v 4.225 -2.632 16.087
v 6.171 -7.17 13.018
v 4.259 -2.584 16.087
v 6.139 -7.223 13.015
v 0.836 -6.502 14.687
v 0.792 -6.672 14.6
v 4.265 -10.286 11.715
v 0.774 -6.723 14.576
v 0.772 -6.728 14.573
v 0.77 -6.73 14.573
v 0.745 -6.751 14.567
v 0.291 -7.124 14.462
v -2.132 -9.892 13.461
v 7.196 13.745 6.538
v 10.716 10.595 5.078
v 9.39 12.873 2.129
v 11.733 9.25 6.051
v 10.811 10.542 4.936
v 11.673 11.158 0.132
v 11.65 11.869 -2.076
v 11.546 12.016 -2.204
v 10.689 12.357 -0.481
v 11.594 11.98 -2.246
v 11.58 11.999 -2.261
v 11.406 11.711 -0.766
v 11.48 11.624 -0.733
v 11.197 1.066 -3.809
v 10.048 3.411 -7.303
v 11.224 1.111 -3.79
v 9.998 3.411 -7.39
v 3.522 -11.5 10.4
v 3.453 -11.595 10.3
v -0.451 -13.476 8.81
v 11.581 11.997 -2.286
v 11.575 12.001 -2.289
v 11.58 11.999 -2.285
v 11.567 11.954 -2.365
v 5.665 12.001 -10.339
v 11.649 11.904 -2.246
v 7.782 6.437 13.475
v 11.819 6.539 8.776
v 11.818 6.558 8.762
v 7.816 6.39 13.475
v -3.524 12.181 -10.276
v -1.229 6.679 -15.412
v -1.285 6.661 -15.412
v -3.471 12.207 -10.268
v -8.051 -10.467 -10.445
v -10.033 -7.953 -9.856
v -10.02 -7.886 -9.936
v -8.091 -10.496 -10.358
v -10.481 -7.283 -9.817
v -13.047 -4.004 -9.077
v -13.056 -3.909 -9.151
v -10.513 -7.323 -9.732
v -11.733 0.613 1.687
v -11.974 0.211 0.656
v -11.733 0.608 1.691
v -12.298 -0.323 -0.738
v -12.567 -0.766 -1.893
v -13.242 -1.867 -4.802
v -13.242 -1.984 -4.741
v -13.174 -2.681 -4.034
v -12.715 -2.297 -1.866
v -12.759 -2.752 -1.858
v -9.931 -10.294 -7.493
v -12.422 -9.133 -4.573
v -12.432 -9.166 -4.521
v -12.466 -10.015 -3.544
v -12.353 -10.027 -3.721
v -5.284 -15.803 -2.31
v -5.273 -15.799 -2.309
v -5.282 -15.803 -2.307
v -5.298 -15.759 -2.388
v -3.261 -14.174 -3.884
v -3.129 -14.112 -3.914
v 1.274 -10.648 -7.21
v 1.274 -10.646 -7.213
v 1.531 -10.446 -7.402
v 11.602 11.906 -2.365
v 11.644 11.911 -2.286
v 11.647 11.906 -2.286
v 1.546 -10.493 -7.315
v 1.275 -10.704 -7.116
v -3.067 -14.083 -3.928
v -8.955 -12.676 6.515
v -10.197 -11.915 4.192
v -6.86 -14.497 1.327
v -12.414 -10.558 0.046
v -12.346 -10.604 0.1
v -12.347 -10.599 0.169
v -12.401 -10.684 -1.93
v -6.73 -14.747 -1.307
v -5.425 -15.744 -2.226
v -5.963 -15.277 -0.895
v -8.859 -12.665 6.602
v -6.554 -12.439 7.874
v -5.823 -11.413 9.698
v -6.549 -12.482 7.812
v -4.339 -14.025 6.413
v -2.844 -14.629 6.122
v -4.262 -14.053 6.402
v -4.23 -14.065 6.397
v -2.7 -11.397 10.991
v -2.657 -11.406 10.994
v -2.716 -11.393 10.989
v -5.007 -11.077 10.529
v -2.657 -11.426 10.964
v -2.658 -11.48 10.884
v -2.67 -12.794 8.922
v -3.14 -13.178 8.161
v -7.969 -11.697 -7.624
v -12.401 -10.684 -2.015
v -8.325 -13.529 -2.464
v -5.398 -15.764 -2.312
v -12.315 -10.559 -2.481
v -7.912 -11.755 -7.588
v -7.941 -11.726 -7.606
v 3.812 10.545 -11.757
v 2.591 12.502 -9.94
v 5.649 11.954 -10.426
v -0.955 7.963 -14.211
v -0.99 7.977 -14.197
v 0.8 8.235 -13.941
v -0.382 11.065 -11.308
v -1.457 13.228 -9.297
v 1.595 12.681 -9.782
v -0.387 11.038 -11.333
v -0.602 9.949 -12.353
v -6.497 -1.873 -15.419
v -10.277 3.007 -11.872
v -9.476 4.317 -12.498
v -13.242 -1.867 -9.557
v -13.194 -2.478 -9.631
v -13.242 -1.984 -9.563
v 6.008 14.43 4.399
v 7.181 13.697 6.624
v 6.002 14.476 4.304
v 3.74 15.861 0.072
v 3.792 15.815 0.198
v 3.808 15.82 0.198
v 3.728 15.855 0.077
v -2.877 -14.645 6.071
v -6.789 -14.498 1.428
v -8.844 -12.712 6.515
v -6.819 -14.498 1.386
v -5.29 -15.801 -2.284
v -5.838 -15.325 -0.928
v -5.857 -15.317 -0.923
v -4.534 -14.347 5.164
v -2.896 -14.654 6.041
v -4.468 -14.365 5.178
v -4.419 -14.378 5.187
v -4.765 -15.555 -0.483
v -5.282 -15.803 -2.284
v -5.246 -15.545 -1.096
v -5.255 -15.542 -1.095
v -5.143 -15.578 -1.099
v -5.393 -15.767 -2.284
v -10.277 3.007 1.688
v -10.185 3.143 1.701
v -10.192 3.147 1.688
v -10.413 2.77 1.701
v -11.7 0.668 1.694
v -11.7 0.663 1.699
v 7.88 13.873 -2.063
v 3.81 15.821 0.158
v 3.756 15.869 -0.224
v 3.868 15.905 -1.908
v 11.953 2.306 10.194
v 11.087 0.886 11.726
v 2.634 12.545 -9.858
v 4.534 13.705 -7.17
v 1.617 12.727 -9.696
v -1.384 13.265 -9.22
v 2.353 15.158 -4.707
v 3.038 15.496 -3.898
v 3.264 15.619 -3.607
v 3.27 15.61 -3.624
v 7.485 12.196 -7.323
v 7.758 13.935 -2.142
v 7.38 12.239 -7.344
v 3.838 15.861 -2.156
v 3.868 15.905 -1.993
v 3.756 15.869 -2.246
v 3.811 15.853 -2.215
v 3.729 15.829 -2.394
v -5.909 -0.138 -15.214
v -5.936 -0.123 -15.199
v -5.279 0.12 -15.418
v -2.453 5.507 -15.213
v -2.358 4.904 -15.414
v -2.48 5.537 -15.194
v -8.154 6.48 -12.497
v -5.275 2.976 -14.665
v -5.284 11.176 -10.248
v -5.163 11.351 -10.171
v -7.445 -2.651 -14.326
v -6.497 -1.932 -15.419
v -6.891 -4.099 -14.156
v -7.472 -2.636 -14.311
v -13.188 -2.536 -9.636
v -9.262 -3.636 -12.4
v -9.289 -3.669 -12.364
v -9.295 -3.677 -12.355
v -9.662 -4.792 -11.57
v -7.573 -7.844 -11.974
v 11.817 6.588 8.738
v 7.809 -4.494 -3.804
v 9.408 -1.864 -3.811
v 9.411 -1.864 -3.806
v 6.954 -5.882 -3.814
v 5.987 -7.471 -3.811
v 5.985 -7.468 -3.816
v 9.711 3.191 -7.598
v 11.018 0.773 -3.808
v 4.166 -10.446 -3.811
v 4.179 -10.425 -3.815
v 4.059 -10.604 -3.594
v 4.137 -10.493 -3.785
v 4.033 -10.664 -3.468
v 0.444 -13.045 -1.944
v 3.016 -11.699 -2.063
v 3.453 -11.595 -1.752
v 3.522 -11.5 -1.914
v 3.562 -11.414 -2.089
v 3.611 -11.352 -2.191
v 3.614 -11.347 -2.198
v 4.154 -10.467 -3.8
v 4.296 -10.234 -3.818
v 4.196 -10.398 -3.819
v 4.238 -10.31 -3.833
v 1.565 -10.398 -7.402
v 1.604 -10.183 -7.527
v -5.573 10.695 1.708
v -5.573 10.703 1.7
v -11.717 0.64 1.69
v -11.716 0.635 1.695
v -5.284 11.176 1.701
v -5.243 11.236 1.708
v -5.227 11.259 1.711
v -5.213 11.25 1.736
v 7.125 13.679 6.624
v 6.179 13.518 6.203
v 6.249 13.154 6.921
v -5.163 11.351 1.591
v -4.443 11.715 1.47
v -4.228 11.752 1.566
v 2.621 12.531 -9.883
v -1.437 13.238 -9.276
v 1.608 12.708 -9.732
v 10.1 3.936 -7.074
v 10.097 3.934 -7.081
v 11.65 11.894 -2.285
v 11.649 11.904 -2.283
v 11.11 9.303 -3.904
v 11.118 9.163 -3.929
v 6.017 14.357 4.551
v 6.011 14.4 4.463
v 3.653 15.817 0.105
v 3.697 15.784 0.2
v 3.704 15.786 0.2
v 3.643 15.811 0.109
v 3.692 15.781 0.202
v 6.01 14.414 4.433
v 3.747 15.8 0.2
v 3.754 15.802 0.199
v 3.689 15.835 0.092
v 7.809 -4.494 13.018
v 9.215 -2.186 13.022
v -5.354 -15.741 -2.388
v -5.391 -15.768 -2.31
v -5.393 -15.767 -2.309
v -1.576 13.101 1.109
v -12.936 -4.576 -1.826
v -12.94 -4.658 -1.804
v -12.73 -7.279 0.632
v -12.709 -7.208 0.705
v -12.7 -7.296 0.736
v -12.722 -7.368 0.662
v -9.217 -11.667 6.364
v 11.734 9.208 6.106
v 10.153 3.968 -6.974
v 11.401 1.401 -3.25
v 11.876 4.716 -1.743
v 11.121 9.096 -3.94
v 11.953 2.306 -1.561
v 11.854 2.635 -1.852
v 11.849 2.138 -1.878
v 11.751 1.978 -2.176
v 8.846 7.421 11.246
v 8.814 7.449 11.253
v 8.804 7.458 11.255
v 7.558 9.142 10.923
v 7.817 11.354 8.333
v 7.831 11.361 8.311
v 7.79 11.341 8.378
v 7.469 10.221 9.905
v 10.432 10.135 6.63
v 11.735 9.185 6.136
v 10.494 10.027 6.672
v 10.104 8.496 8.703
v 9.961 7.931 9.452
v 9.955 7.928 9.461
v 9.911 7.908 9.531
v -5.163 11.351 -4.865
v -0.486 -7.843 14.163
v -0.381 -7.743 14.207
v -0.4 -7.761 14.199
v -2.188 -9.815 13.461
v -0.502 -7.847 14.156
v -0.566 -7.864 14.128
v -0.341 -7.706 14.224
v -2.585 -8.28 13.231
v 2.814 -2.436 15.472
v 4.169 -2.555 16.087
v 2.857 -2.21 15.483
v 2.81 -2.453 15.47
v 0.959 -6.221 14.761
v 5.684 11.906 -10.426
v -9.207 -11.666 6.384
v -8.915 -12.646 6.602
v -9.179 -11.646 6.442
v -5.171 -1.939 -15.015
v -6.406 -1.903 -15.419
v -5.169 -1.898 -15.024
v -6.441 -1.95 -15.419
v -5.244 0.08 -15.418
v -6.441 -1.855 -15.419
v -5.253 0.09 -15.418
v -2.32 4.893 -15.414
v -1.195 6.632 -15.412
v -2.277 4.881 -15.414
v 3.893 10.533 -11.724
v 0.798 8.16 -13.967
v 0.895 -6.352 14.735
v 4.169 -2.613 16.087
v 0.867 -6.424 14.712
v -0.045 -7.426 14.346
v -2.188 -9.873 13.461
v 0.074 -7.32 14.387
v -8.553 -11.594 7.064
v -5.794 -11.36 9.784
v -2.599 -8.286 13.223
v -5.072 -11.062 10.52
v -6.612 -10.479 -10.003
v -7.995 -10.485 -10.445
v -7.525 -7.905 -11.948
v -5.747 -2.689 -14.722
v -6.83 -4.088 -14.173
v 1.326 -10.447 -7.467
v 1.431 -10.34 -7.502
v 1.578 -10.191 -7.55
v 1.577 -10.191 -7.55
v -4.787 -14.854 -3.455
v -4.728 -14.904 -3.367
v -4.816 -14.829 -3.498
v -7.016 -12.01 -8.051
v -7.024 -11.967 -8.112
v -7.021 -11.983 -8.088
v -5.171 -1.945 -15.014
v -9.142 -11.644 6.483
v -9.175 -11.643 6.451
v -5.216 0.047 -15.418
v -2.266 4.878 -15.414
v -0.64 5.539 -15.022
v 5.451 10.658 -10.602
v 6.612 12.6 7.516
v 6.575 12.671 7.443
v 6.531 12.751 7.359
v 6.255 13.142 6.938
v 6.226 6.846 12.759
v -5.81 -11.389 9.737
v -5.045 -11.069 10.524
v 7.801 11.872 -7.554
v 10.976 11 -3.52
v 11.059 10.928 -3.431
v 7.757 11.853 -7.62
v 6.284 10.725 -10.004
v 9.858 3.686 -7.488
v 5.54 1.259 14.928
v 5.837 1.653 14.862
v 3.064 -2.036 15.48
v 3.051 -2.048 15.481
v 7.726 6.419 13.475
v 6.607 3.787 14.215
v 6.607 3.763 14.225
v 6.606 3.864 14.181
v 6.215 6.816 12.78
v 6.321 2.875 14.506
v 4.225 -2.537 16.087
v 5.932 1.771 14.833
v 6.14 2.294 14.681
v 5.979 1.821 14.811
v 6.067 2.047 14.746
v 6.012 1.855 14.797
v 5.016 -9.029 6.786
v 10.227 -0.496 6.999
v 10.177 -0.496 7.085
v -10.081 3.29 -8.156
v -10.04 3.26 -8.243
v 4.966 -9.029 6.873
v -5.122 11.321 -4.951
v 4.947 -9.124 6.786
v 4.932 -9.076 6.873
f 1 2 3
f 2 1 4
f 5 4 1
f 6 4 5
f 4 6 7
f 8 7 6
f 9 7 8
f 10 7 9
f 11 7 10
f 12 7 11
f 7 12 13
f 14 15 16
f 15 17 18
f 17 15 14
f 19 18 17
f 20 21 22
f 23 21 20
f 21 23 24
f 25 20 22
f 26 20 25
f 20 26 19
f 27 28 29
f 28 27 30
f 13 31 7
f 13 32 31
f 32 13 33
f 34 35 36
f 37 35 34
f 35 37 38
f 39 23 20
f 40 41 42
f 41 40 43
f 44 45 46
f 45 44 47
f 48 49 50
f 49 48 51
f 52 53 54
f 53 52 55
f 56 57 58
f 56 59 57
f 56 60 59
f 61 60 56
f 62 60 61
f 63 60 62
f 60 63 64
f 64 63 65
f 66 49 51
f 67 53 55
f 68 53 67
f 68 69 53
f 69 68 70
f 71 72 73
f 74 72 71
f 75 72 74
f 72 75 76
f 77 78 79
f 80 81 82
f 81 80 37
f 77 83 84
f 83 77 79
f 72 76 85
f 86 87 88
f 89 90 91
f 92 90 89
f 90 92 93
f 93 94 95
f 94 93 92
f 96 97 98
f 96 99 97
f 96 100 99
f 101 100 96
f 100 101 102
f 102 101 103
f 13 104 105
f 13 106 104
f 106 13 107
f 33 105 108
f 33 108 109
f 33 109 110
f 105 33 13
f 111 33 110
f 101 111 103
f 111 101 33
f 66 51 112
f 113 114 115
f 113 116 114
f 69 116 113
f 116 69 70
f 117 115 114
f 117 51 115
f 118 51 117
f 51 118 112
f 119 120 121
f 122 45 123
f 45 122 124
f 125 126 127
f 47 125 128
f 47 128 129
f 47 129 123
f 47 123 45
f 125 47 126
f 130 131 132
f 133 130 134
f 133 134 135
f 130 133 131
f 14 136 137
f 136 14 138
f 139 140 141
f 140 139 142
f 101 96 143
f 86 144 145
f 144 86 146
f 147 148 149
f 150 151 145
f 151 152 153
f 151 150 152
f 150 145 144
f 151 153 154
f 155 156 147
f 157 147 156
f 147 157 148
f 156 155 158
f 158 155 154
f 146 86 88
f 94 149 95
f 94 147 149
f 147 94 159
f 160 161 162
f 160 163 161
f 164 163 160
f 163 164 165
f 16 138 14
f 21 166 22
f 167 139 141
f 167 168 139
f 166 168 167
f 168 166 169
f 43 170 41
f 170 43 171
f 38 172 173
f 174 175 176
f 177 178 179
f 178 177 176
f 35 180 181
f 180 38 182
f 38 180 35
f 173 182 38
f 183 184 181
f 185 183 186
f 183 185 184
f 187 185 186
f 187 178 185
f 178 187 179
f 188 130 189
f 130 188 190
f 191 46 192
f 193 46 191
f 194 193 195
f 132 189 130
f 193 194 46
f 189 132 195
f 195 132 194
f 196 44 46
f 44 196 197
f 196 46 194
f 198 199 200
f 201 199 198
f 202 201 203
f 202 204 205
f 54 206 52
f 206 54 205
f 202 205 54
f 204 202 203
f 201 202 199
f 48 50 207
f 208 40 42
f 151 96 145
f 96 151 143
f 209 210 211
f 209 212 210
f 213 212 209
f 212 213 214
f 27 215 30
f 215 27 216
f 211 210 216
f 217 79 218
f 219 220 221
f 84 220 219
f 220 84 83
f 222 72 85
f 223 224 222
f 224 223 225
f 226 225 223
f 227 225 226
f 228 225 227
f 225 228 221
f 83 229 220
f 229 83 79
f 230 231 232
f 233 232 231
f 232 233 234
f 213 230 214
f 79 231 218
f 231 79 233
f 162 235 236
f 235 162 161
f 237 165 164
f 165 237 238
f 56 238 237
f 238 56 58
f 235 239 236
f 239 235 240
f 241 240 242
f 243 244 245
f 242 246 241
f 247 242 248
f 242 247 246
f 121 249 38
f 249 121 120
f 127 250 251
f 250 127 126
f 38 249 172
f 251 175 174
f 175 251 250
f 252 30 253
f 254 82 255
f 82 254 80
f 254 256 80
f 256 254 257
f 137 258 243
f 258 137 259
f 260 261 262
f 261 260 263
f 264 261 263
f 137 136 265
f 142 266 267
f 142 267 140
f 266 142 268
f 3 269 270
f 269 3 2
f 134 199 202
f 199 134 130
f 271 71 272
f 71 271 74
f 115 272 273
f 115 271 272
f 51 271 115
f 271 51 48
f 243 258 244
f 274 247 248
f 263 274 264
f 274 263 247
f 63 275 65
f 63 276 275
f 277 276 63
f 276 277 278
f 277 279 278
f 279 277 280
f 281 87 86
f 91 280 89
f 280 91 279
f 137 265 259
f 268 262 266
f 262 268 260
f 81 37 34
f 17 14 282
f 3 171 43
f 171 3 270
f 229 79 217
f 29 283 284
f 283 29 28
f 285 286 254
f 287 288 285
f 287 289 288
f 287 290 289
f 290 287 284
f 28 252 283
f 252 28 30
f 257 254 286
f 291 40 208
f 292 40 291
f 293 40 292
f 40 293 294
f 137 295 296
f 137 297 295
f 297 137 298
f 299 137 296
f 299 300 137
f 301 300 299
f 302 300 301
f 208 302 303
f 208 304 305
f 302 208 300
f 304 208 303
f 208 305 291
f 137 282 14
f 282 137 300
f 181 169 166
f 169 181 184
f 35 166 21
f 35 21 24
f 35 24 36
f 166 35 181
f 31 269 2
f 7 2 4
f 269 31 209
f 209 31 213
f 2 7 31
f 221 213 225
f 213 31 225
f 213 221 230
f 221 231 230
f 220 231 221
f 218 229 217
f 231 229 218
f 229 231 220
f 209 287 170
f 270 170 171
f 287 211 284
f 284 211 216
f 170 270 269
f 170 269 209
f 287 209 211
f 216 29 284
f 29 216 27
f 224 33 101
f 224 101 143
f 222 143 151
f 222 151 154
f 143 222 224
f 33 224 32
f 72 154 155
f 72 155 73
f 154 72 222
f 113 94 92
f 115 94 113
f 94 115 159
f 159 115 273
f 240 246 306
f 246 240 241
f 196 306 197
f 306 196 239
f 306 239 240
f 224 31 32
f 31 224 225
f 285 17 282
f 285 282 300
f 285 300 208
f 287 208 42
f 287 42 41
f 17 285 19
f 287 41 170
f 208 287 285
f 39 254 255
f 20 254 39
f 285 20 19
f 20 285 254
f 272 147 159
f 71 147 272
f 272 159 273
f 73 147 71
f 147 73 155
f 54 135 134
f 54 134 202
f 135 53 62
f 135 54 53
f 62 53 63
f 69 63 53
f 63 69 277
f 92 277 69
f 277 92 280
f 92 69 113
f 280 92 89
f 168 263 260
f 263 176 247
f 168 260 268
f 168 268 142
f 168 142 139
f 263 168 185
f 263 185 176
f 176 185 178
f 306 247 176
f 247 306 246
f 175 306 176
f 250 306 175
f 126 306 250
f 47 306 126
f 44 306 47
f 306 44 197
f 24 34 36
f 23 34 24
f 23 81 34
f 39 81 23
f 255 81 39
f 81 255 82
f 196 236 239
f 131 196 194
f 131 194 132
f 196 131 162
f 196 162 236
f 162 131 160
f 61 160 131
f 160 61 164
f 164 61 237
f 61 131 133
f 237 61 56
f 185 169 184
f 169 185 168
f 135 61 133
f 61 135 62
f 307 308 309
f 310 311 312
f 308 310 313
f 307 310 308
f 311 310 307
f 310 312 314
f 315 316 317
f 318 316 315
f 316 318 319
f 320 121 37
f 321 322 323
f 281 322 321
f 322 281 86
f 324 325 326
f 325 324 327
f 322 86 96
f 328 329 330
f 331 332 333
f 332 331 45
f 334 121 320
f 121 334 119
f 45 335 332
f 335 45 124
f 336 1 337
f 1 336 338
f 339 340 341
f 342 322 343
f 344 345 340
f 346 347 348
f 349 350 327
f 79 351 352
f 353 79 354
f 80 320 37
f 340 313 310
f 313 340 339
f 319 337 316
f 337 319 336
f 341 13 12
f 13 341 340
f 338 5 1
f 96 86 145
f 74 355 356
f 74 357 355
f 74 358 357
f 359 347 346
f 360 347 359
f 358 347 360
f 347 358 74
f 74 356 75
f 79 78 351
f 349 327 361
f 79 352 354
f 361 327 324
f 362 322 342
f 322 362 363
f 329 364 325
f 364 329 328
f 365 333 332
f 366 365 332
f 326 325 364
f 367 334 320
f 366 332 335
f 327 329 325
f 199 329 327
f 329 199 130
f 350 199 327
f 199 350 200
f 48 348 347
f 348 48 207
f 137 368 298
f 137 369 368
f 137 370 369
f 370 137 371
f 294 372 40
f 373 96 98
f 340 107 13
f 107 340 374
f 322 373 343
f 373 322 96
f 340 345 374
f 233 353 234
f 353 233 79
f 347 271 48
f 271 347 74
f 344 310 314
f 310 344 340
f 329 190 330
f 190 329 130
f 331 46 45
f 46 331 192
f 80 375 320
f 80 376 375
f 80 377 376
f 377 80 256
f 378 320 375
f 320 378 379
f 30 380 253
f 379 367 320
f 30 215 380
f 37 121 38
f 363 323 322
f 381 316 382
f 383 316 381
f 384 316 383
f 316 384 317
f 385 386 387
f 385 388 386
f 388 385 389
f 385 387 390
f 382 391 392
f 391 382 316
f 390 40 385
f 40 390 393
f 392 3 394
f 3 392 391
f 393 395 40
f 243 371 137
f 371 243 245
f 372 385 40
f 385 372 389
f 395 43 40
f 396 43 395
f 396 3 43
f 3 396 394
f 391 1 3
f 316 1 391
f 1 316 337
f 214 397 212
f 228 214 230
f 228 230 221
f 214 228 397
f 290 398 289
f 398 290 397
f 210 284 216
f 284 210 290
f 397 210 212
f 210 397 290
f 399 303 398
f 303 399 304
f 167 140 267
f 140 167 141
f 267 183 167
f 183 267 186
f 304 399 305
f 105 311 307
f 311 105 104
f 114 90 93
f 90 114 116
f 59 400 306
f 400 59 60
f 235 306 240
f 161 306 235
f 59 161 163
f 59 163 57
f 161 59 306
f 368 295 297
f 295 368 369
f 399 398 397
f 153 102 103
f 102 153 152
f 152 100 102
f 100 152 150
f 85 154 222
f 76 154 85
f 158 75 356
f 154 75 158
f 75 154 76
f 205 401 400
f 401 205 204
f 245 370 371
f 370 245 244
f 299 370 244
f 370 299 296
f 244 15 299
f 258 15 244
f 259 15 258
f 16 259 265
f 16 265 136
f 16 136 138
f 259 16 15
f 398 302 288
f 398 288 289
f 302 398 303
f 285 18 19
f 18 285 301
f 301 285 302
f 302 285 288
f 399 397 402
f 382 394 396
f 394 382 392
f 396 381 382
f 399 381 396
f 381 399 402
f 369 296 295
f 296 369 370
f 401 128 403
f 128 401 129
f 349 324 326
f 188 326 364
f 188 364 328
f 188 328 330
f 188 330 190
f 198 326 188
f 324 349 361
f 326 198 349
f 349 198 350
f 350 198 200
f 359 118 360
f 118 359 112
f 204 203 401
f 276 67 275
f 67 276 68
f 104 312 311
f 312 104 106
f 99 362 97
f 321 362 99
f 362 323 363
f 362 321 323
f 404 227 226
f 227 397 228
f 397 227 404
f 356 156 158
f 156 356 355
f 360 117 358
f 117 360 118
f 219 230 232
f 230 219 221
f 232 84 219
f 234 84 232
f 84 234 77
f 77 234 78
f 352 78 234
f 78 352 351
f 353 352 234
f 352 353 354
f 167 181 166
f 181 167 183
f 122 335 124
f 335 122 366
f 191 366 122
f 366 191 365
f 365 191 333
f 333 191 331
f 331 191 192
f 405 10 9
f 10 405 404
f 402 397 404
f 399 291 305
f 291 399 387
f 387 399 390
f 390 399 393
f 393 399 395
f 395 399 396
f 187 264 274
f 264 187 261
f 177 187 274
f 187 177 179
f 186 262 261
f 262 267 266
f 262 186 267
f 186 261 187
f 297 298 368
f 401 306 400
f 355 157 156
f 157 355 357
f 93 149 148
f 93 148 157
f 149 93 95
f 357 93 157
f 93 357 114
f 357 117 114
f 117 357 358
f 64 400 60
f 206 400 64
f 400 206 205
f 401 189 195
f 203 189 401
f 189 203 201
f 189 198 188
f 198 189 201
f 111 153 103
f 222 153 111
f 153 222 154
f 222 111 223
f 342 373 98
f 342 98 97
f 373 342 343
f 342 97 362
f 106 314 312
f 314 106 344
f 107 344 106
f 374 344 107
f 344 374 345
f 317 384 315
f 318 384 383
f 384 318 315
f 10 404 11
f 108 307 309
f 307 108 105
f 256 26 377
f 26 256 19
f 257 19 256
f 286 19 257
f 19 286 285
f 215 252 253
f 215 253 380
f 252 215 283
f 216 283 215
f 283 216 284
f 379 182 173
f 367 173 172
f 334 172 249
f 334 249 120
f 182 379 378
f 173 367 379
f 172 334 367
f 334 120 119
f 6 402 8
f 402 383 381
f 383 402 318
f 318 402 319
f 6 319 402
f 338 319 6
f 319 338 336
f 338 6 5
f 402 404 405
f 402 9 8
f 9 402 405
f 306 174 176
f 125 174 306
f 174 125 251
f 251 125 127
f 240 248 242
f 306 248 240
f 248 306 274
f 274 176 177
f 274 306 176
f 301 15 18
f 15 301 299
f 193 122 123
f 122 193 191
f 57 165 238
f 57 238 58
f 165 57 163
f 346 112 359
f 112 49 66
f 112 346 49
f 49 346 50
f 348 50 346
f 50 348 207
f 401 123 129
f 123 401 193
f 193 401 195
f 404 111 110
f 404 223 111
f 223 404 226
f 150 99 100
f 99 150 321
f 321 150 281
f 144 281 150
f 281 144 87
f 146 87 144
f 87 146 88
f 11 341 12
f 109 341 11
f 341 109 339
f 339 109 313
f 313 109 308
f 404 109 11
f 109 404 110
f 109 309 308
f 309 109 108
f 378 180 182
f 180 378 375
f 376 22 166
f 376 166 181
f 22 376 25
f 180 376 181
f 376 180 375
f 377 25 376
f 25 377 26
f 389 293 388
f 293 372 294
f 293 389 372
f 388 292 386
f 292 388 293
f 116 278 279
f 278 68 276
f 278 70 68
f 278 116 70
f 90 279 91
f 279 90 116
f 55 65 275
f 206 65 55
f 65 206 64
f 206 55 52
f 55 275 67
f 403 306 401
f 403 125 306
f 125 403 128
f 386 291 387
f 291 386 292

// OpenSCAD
// Auto-generated OpenSCAD file

    inner_points = 10*[[0.0700122788145141, -0.5899867463576787, -1.5485662456686995], [0.5536702496302224, 0.20951801959251765, 1.5496595452459865], [0.3837392237867054, 1.5810057288487958, -0.4677500511375285], [-1.2320578889140816, -1.0625183532543938, 0.46665675156024133], [0.5910683620661039, 0.2632714000188084, -1.527327277975484], [-0.3586733514761777, -1.290553069521443, -0.9780967397079723], [0.9823558799209142, 0.910084342756282, 0.9791900392852595], [0.03261416637863256, -0.6437401267839695, 1.5284205775527713], [0.08730081805517803, 1.0936030862461223, -1.2890678553955885], [-1.2199065055817309, -1.0450528212147916, -0.5331168723535343], [0.3715878404543547, 1.5635401968091933, 0.5320235727762472], [-0.9356194831825542, -0.5751157106517207, 1.2879745558183013], [1.0054691845213792, 0.9433057588699332, -0.9224924004011736], [-0.5312451885235989, -1.5708350453974695, -0.033818721824939835], [1.1549277169683354, 1.1903663186323088, 0.034912021402226934], [-0.3817866560766427, -1.3237744856350941, 0.9235856999784607], [-0.40449798132161563, 0.2875035122688776, -1.6182143543367875], [-0.903806748608131, -0.5293903541404417, -1.3294667726436182], [0.05548808348075484, 1.0478777297348434, 1.328373473066331], [-0.4438206838057605, 0.23098386332552417, 1.6171210547595003], [1.185256496068756, 0.23064800053697915, -0.2444102209461938], [-0.9999741793416539, 0.3230904868027798, -0.8156299881576774], [0.7708556736134807, -0.4493863583141455, -0.8492450985205042], [1.0126846590213348, -0.04963397533904733, 0.6998677969368388], [-0.5081753799648603, 1.1291900607800247, -0.4864834892164787], [-1.3160739363152536, -0.19257198027157013, -0.019280087867593804], [0.3421700433227889, -1.1499526814779097, -0.27877559255977724], [0.49162857576974506, -0.9028921217155343, 0.6786288292436233], [-0.5203267632972108, 1.1117245287404225, 0.5132901346972969], [-1.0196355305837264, 0.2948306623311031, 0.8020377163904663]];

    outer_points = 10*[[-0.6456324675968002, -0.1902777633799494, -1.5332707609435225], [1.2694564683720715, -0.1902777633799494, 1.0752863732456437], [0.2636354735959513, 1.6422548517857285, -0.19354967234384785], [-0.8874594743712225, -1.26169932502583, 0.6515340600417266], [-0.12445942987975245, 0.663172955851532, -1.532539597451722], [-0.8010560642832288, -1.0437284826114308, -1.0358118426032024], [1.4248800650585003, 0.663172955851532, 0.5778274549053235], [0.7482834306550238, -1.0437284826114308, 1.074555209753843], [-0.40911482956083434, 1.3649519033432802, -0.8794870633552854], [-1.3403702046054238, -0.9843963765833815, -0.1957999621855453], [0.7165462038301526, 1.3649519033432802, 0.6537843498834242], [-0.214709171214437, -0.9843963765833815, 1.3374714510531642], [0.5633926624800331, 1.1906345080596314, -1.0338976317303359], [-0.5313636886585785, -1.57119003481953, -0.23017524123000543], [1.1551876894338498, 1.1906345080596314, -0.22780914646787348], [0.06043133829523831, -1.57119003481953, 0.575913244032457], [-1.0447369557761081, 0.6389633591403906, -1.1420230539389458], [-1.4004448568371106, -0.2584078323804918, -0.8808778189619931], [0.7766208560618393, 0.6389633591403906, 1.338862206659872], [0.42091295500083675, -0.2584078323804918, 1.6000074416368246], [0.9947883785101106, 0.34107898385562474, -0.7303302627900091], [-1.1956160829923428, 0.4222705456034471, -0.17751296403220418], [0.3069362861503253, -0.18638256835247435, -1.2289722285113953], [1.2644807541347611, -0.18638256835247435, 0.07530633858318769], [-0.5599939567770693, 1.1482590898063367, 0.08502302655145622], [-1.1355414307606564, -0.3037179985994425, 0.5075648927442435], [0.1515126894638965, -1.039833287583956, -0.7315133101710751], [0.7433077164177133, -1.039833287583956, 0.07457517509138728], [-0.10708322654286795, 0.8709561413638883, 0.9323570487787283], [-0.4627911276038704, -0.02641505015699408, 1.1935022837556808]];

    // Convex hull for inner set (I)
    module inner_hull() {
        hull() {
            for (p = inner_points) {
                translate(p) sphere(r=0.1);
            }
        }
    }

    // Convex hull for outer set (O) minus inner hull (O \ I)
    module outer_minus_inner() {
        difference() {
            hull() {
                for (p = outer_points) {
                    translate(p) sphere(r=0.1);
                }
            }
            inner_hull(); // Subtract inner hull
        }
    }

    // Convex hull for outer set (O) minus all translated inner hulls
    module outer_minus_AllTranslationInner() {
        difference() {
            hull() {
                for (p = outer_points) {
                    translate(p) sphere(r=0.1);
                }
            }
            hull() {
                translate([0,0,50]) inner_hull();
                translate([0,0,-50]) inner_hull();
            }; // Subtract translated inner hulls
        }
    }

    // Difference between outer_minus_inner and outer_minus_AllTranslationInner
    module outer_minus_inner_diff() {
        difference() {
            // Outer minus inner
            difference() {
                hull() {
                    for (p = outer_points) {
                        translate(p) sphere(r=0.1);
                    }
                }
                inner_hull();
            }

            // Subtract Outer minus AllTranslationInner
            difference() {
                hull() {
                    for (p = outer_points) {
                        translate(p) sphere(r=0.1);
                    }
                }
                hull() {
                    translate([0,0,50]) inner_hull();
                    translate([0,0,-50]) inner_hull();
                };
            }
        }
    }

    // Rendering all with colors applied
    color([1, 1, 0, 1]) outer_minus_inner_diff(); // Opaque yellow
    
